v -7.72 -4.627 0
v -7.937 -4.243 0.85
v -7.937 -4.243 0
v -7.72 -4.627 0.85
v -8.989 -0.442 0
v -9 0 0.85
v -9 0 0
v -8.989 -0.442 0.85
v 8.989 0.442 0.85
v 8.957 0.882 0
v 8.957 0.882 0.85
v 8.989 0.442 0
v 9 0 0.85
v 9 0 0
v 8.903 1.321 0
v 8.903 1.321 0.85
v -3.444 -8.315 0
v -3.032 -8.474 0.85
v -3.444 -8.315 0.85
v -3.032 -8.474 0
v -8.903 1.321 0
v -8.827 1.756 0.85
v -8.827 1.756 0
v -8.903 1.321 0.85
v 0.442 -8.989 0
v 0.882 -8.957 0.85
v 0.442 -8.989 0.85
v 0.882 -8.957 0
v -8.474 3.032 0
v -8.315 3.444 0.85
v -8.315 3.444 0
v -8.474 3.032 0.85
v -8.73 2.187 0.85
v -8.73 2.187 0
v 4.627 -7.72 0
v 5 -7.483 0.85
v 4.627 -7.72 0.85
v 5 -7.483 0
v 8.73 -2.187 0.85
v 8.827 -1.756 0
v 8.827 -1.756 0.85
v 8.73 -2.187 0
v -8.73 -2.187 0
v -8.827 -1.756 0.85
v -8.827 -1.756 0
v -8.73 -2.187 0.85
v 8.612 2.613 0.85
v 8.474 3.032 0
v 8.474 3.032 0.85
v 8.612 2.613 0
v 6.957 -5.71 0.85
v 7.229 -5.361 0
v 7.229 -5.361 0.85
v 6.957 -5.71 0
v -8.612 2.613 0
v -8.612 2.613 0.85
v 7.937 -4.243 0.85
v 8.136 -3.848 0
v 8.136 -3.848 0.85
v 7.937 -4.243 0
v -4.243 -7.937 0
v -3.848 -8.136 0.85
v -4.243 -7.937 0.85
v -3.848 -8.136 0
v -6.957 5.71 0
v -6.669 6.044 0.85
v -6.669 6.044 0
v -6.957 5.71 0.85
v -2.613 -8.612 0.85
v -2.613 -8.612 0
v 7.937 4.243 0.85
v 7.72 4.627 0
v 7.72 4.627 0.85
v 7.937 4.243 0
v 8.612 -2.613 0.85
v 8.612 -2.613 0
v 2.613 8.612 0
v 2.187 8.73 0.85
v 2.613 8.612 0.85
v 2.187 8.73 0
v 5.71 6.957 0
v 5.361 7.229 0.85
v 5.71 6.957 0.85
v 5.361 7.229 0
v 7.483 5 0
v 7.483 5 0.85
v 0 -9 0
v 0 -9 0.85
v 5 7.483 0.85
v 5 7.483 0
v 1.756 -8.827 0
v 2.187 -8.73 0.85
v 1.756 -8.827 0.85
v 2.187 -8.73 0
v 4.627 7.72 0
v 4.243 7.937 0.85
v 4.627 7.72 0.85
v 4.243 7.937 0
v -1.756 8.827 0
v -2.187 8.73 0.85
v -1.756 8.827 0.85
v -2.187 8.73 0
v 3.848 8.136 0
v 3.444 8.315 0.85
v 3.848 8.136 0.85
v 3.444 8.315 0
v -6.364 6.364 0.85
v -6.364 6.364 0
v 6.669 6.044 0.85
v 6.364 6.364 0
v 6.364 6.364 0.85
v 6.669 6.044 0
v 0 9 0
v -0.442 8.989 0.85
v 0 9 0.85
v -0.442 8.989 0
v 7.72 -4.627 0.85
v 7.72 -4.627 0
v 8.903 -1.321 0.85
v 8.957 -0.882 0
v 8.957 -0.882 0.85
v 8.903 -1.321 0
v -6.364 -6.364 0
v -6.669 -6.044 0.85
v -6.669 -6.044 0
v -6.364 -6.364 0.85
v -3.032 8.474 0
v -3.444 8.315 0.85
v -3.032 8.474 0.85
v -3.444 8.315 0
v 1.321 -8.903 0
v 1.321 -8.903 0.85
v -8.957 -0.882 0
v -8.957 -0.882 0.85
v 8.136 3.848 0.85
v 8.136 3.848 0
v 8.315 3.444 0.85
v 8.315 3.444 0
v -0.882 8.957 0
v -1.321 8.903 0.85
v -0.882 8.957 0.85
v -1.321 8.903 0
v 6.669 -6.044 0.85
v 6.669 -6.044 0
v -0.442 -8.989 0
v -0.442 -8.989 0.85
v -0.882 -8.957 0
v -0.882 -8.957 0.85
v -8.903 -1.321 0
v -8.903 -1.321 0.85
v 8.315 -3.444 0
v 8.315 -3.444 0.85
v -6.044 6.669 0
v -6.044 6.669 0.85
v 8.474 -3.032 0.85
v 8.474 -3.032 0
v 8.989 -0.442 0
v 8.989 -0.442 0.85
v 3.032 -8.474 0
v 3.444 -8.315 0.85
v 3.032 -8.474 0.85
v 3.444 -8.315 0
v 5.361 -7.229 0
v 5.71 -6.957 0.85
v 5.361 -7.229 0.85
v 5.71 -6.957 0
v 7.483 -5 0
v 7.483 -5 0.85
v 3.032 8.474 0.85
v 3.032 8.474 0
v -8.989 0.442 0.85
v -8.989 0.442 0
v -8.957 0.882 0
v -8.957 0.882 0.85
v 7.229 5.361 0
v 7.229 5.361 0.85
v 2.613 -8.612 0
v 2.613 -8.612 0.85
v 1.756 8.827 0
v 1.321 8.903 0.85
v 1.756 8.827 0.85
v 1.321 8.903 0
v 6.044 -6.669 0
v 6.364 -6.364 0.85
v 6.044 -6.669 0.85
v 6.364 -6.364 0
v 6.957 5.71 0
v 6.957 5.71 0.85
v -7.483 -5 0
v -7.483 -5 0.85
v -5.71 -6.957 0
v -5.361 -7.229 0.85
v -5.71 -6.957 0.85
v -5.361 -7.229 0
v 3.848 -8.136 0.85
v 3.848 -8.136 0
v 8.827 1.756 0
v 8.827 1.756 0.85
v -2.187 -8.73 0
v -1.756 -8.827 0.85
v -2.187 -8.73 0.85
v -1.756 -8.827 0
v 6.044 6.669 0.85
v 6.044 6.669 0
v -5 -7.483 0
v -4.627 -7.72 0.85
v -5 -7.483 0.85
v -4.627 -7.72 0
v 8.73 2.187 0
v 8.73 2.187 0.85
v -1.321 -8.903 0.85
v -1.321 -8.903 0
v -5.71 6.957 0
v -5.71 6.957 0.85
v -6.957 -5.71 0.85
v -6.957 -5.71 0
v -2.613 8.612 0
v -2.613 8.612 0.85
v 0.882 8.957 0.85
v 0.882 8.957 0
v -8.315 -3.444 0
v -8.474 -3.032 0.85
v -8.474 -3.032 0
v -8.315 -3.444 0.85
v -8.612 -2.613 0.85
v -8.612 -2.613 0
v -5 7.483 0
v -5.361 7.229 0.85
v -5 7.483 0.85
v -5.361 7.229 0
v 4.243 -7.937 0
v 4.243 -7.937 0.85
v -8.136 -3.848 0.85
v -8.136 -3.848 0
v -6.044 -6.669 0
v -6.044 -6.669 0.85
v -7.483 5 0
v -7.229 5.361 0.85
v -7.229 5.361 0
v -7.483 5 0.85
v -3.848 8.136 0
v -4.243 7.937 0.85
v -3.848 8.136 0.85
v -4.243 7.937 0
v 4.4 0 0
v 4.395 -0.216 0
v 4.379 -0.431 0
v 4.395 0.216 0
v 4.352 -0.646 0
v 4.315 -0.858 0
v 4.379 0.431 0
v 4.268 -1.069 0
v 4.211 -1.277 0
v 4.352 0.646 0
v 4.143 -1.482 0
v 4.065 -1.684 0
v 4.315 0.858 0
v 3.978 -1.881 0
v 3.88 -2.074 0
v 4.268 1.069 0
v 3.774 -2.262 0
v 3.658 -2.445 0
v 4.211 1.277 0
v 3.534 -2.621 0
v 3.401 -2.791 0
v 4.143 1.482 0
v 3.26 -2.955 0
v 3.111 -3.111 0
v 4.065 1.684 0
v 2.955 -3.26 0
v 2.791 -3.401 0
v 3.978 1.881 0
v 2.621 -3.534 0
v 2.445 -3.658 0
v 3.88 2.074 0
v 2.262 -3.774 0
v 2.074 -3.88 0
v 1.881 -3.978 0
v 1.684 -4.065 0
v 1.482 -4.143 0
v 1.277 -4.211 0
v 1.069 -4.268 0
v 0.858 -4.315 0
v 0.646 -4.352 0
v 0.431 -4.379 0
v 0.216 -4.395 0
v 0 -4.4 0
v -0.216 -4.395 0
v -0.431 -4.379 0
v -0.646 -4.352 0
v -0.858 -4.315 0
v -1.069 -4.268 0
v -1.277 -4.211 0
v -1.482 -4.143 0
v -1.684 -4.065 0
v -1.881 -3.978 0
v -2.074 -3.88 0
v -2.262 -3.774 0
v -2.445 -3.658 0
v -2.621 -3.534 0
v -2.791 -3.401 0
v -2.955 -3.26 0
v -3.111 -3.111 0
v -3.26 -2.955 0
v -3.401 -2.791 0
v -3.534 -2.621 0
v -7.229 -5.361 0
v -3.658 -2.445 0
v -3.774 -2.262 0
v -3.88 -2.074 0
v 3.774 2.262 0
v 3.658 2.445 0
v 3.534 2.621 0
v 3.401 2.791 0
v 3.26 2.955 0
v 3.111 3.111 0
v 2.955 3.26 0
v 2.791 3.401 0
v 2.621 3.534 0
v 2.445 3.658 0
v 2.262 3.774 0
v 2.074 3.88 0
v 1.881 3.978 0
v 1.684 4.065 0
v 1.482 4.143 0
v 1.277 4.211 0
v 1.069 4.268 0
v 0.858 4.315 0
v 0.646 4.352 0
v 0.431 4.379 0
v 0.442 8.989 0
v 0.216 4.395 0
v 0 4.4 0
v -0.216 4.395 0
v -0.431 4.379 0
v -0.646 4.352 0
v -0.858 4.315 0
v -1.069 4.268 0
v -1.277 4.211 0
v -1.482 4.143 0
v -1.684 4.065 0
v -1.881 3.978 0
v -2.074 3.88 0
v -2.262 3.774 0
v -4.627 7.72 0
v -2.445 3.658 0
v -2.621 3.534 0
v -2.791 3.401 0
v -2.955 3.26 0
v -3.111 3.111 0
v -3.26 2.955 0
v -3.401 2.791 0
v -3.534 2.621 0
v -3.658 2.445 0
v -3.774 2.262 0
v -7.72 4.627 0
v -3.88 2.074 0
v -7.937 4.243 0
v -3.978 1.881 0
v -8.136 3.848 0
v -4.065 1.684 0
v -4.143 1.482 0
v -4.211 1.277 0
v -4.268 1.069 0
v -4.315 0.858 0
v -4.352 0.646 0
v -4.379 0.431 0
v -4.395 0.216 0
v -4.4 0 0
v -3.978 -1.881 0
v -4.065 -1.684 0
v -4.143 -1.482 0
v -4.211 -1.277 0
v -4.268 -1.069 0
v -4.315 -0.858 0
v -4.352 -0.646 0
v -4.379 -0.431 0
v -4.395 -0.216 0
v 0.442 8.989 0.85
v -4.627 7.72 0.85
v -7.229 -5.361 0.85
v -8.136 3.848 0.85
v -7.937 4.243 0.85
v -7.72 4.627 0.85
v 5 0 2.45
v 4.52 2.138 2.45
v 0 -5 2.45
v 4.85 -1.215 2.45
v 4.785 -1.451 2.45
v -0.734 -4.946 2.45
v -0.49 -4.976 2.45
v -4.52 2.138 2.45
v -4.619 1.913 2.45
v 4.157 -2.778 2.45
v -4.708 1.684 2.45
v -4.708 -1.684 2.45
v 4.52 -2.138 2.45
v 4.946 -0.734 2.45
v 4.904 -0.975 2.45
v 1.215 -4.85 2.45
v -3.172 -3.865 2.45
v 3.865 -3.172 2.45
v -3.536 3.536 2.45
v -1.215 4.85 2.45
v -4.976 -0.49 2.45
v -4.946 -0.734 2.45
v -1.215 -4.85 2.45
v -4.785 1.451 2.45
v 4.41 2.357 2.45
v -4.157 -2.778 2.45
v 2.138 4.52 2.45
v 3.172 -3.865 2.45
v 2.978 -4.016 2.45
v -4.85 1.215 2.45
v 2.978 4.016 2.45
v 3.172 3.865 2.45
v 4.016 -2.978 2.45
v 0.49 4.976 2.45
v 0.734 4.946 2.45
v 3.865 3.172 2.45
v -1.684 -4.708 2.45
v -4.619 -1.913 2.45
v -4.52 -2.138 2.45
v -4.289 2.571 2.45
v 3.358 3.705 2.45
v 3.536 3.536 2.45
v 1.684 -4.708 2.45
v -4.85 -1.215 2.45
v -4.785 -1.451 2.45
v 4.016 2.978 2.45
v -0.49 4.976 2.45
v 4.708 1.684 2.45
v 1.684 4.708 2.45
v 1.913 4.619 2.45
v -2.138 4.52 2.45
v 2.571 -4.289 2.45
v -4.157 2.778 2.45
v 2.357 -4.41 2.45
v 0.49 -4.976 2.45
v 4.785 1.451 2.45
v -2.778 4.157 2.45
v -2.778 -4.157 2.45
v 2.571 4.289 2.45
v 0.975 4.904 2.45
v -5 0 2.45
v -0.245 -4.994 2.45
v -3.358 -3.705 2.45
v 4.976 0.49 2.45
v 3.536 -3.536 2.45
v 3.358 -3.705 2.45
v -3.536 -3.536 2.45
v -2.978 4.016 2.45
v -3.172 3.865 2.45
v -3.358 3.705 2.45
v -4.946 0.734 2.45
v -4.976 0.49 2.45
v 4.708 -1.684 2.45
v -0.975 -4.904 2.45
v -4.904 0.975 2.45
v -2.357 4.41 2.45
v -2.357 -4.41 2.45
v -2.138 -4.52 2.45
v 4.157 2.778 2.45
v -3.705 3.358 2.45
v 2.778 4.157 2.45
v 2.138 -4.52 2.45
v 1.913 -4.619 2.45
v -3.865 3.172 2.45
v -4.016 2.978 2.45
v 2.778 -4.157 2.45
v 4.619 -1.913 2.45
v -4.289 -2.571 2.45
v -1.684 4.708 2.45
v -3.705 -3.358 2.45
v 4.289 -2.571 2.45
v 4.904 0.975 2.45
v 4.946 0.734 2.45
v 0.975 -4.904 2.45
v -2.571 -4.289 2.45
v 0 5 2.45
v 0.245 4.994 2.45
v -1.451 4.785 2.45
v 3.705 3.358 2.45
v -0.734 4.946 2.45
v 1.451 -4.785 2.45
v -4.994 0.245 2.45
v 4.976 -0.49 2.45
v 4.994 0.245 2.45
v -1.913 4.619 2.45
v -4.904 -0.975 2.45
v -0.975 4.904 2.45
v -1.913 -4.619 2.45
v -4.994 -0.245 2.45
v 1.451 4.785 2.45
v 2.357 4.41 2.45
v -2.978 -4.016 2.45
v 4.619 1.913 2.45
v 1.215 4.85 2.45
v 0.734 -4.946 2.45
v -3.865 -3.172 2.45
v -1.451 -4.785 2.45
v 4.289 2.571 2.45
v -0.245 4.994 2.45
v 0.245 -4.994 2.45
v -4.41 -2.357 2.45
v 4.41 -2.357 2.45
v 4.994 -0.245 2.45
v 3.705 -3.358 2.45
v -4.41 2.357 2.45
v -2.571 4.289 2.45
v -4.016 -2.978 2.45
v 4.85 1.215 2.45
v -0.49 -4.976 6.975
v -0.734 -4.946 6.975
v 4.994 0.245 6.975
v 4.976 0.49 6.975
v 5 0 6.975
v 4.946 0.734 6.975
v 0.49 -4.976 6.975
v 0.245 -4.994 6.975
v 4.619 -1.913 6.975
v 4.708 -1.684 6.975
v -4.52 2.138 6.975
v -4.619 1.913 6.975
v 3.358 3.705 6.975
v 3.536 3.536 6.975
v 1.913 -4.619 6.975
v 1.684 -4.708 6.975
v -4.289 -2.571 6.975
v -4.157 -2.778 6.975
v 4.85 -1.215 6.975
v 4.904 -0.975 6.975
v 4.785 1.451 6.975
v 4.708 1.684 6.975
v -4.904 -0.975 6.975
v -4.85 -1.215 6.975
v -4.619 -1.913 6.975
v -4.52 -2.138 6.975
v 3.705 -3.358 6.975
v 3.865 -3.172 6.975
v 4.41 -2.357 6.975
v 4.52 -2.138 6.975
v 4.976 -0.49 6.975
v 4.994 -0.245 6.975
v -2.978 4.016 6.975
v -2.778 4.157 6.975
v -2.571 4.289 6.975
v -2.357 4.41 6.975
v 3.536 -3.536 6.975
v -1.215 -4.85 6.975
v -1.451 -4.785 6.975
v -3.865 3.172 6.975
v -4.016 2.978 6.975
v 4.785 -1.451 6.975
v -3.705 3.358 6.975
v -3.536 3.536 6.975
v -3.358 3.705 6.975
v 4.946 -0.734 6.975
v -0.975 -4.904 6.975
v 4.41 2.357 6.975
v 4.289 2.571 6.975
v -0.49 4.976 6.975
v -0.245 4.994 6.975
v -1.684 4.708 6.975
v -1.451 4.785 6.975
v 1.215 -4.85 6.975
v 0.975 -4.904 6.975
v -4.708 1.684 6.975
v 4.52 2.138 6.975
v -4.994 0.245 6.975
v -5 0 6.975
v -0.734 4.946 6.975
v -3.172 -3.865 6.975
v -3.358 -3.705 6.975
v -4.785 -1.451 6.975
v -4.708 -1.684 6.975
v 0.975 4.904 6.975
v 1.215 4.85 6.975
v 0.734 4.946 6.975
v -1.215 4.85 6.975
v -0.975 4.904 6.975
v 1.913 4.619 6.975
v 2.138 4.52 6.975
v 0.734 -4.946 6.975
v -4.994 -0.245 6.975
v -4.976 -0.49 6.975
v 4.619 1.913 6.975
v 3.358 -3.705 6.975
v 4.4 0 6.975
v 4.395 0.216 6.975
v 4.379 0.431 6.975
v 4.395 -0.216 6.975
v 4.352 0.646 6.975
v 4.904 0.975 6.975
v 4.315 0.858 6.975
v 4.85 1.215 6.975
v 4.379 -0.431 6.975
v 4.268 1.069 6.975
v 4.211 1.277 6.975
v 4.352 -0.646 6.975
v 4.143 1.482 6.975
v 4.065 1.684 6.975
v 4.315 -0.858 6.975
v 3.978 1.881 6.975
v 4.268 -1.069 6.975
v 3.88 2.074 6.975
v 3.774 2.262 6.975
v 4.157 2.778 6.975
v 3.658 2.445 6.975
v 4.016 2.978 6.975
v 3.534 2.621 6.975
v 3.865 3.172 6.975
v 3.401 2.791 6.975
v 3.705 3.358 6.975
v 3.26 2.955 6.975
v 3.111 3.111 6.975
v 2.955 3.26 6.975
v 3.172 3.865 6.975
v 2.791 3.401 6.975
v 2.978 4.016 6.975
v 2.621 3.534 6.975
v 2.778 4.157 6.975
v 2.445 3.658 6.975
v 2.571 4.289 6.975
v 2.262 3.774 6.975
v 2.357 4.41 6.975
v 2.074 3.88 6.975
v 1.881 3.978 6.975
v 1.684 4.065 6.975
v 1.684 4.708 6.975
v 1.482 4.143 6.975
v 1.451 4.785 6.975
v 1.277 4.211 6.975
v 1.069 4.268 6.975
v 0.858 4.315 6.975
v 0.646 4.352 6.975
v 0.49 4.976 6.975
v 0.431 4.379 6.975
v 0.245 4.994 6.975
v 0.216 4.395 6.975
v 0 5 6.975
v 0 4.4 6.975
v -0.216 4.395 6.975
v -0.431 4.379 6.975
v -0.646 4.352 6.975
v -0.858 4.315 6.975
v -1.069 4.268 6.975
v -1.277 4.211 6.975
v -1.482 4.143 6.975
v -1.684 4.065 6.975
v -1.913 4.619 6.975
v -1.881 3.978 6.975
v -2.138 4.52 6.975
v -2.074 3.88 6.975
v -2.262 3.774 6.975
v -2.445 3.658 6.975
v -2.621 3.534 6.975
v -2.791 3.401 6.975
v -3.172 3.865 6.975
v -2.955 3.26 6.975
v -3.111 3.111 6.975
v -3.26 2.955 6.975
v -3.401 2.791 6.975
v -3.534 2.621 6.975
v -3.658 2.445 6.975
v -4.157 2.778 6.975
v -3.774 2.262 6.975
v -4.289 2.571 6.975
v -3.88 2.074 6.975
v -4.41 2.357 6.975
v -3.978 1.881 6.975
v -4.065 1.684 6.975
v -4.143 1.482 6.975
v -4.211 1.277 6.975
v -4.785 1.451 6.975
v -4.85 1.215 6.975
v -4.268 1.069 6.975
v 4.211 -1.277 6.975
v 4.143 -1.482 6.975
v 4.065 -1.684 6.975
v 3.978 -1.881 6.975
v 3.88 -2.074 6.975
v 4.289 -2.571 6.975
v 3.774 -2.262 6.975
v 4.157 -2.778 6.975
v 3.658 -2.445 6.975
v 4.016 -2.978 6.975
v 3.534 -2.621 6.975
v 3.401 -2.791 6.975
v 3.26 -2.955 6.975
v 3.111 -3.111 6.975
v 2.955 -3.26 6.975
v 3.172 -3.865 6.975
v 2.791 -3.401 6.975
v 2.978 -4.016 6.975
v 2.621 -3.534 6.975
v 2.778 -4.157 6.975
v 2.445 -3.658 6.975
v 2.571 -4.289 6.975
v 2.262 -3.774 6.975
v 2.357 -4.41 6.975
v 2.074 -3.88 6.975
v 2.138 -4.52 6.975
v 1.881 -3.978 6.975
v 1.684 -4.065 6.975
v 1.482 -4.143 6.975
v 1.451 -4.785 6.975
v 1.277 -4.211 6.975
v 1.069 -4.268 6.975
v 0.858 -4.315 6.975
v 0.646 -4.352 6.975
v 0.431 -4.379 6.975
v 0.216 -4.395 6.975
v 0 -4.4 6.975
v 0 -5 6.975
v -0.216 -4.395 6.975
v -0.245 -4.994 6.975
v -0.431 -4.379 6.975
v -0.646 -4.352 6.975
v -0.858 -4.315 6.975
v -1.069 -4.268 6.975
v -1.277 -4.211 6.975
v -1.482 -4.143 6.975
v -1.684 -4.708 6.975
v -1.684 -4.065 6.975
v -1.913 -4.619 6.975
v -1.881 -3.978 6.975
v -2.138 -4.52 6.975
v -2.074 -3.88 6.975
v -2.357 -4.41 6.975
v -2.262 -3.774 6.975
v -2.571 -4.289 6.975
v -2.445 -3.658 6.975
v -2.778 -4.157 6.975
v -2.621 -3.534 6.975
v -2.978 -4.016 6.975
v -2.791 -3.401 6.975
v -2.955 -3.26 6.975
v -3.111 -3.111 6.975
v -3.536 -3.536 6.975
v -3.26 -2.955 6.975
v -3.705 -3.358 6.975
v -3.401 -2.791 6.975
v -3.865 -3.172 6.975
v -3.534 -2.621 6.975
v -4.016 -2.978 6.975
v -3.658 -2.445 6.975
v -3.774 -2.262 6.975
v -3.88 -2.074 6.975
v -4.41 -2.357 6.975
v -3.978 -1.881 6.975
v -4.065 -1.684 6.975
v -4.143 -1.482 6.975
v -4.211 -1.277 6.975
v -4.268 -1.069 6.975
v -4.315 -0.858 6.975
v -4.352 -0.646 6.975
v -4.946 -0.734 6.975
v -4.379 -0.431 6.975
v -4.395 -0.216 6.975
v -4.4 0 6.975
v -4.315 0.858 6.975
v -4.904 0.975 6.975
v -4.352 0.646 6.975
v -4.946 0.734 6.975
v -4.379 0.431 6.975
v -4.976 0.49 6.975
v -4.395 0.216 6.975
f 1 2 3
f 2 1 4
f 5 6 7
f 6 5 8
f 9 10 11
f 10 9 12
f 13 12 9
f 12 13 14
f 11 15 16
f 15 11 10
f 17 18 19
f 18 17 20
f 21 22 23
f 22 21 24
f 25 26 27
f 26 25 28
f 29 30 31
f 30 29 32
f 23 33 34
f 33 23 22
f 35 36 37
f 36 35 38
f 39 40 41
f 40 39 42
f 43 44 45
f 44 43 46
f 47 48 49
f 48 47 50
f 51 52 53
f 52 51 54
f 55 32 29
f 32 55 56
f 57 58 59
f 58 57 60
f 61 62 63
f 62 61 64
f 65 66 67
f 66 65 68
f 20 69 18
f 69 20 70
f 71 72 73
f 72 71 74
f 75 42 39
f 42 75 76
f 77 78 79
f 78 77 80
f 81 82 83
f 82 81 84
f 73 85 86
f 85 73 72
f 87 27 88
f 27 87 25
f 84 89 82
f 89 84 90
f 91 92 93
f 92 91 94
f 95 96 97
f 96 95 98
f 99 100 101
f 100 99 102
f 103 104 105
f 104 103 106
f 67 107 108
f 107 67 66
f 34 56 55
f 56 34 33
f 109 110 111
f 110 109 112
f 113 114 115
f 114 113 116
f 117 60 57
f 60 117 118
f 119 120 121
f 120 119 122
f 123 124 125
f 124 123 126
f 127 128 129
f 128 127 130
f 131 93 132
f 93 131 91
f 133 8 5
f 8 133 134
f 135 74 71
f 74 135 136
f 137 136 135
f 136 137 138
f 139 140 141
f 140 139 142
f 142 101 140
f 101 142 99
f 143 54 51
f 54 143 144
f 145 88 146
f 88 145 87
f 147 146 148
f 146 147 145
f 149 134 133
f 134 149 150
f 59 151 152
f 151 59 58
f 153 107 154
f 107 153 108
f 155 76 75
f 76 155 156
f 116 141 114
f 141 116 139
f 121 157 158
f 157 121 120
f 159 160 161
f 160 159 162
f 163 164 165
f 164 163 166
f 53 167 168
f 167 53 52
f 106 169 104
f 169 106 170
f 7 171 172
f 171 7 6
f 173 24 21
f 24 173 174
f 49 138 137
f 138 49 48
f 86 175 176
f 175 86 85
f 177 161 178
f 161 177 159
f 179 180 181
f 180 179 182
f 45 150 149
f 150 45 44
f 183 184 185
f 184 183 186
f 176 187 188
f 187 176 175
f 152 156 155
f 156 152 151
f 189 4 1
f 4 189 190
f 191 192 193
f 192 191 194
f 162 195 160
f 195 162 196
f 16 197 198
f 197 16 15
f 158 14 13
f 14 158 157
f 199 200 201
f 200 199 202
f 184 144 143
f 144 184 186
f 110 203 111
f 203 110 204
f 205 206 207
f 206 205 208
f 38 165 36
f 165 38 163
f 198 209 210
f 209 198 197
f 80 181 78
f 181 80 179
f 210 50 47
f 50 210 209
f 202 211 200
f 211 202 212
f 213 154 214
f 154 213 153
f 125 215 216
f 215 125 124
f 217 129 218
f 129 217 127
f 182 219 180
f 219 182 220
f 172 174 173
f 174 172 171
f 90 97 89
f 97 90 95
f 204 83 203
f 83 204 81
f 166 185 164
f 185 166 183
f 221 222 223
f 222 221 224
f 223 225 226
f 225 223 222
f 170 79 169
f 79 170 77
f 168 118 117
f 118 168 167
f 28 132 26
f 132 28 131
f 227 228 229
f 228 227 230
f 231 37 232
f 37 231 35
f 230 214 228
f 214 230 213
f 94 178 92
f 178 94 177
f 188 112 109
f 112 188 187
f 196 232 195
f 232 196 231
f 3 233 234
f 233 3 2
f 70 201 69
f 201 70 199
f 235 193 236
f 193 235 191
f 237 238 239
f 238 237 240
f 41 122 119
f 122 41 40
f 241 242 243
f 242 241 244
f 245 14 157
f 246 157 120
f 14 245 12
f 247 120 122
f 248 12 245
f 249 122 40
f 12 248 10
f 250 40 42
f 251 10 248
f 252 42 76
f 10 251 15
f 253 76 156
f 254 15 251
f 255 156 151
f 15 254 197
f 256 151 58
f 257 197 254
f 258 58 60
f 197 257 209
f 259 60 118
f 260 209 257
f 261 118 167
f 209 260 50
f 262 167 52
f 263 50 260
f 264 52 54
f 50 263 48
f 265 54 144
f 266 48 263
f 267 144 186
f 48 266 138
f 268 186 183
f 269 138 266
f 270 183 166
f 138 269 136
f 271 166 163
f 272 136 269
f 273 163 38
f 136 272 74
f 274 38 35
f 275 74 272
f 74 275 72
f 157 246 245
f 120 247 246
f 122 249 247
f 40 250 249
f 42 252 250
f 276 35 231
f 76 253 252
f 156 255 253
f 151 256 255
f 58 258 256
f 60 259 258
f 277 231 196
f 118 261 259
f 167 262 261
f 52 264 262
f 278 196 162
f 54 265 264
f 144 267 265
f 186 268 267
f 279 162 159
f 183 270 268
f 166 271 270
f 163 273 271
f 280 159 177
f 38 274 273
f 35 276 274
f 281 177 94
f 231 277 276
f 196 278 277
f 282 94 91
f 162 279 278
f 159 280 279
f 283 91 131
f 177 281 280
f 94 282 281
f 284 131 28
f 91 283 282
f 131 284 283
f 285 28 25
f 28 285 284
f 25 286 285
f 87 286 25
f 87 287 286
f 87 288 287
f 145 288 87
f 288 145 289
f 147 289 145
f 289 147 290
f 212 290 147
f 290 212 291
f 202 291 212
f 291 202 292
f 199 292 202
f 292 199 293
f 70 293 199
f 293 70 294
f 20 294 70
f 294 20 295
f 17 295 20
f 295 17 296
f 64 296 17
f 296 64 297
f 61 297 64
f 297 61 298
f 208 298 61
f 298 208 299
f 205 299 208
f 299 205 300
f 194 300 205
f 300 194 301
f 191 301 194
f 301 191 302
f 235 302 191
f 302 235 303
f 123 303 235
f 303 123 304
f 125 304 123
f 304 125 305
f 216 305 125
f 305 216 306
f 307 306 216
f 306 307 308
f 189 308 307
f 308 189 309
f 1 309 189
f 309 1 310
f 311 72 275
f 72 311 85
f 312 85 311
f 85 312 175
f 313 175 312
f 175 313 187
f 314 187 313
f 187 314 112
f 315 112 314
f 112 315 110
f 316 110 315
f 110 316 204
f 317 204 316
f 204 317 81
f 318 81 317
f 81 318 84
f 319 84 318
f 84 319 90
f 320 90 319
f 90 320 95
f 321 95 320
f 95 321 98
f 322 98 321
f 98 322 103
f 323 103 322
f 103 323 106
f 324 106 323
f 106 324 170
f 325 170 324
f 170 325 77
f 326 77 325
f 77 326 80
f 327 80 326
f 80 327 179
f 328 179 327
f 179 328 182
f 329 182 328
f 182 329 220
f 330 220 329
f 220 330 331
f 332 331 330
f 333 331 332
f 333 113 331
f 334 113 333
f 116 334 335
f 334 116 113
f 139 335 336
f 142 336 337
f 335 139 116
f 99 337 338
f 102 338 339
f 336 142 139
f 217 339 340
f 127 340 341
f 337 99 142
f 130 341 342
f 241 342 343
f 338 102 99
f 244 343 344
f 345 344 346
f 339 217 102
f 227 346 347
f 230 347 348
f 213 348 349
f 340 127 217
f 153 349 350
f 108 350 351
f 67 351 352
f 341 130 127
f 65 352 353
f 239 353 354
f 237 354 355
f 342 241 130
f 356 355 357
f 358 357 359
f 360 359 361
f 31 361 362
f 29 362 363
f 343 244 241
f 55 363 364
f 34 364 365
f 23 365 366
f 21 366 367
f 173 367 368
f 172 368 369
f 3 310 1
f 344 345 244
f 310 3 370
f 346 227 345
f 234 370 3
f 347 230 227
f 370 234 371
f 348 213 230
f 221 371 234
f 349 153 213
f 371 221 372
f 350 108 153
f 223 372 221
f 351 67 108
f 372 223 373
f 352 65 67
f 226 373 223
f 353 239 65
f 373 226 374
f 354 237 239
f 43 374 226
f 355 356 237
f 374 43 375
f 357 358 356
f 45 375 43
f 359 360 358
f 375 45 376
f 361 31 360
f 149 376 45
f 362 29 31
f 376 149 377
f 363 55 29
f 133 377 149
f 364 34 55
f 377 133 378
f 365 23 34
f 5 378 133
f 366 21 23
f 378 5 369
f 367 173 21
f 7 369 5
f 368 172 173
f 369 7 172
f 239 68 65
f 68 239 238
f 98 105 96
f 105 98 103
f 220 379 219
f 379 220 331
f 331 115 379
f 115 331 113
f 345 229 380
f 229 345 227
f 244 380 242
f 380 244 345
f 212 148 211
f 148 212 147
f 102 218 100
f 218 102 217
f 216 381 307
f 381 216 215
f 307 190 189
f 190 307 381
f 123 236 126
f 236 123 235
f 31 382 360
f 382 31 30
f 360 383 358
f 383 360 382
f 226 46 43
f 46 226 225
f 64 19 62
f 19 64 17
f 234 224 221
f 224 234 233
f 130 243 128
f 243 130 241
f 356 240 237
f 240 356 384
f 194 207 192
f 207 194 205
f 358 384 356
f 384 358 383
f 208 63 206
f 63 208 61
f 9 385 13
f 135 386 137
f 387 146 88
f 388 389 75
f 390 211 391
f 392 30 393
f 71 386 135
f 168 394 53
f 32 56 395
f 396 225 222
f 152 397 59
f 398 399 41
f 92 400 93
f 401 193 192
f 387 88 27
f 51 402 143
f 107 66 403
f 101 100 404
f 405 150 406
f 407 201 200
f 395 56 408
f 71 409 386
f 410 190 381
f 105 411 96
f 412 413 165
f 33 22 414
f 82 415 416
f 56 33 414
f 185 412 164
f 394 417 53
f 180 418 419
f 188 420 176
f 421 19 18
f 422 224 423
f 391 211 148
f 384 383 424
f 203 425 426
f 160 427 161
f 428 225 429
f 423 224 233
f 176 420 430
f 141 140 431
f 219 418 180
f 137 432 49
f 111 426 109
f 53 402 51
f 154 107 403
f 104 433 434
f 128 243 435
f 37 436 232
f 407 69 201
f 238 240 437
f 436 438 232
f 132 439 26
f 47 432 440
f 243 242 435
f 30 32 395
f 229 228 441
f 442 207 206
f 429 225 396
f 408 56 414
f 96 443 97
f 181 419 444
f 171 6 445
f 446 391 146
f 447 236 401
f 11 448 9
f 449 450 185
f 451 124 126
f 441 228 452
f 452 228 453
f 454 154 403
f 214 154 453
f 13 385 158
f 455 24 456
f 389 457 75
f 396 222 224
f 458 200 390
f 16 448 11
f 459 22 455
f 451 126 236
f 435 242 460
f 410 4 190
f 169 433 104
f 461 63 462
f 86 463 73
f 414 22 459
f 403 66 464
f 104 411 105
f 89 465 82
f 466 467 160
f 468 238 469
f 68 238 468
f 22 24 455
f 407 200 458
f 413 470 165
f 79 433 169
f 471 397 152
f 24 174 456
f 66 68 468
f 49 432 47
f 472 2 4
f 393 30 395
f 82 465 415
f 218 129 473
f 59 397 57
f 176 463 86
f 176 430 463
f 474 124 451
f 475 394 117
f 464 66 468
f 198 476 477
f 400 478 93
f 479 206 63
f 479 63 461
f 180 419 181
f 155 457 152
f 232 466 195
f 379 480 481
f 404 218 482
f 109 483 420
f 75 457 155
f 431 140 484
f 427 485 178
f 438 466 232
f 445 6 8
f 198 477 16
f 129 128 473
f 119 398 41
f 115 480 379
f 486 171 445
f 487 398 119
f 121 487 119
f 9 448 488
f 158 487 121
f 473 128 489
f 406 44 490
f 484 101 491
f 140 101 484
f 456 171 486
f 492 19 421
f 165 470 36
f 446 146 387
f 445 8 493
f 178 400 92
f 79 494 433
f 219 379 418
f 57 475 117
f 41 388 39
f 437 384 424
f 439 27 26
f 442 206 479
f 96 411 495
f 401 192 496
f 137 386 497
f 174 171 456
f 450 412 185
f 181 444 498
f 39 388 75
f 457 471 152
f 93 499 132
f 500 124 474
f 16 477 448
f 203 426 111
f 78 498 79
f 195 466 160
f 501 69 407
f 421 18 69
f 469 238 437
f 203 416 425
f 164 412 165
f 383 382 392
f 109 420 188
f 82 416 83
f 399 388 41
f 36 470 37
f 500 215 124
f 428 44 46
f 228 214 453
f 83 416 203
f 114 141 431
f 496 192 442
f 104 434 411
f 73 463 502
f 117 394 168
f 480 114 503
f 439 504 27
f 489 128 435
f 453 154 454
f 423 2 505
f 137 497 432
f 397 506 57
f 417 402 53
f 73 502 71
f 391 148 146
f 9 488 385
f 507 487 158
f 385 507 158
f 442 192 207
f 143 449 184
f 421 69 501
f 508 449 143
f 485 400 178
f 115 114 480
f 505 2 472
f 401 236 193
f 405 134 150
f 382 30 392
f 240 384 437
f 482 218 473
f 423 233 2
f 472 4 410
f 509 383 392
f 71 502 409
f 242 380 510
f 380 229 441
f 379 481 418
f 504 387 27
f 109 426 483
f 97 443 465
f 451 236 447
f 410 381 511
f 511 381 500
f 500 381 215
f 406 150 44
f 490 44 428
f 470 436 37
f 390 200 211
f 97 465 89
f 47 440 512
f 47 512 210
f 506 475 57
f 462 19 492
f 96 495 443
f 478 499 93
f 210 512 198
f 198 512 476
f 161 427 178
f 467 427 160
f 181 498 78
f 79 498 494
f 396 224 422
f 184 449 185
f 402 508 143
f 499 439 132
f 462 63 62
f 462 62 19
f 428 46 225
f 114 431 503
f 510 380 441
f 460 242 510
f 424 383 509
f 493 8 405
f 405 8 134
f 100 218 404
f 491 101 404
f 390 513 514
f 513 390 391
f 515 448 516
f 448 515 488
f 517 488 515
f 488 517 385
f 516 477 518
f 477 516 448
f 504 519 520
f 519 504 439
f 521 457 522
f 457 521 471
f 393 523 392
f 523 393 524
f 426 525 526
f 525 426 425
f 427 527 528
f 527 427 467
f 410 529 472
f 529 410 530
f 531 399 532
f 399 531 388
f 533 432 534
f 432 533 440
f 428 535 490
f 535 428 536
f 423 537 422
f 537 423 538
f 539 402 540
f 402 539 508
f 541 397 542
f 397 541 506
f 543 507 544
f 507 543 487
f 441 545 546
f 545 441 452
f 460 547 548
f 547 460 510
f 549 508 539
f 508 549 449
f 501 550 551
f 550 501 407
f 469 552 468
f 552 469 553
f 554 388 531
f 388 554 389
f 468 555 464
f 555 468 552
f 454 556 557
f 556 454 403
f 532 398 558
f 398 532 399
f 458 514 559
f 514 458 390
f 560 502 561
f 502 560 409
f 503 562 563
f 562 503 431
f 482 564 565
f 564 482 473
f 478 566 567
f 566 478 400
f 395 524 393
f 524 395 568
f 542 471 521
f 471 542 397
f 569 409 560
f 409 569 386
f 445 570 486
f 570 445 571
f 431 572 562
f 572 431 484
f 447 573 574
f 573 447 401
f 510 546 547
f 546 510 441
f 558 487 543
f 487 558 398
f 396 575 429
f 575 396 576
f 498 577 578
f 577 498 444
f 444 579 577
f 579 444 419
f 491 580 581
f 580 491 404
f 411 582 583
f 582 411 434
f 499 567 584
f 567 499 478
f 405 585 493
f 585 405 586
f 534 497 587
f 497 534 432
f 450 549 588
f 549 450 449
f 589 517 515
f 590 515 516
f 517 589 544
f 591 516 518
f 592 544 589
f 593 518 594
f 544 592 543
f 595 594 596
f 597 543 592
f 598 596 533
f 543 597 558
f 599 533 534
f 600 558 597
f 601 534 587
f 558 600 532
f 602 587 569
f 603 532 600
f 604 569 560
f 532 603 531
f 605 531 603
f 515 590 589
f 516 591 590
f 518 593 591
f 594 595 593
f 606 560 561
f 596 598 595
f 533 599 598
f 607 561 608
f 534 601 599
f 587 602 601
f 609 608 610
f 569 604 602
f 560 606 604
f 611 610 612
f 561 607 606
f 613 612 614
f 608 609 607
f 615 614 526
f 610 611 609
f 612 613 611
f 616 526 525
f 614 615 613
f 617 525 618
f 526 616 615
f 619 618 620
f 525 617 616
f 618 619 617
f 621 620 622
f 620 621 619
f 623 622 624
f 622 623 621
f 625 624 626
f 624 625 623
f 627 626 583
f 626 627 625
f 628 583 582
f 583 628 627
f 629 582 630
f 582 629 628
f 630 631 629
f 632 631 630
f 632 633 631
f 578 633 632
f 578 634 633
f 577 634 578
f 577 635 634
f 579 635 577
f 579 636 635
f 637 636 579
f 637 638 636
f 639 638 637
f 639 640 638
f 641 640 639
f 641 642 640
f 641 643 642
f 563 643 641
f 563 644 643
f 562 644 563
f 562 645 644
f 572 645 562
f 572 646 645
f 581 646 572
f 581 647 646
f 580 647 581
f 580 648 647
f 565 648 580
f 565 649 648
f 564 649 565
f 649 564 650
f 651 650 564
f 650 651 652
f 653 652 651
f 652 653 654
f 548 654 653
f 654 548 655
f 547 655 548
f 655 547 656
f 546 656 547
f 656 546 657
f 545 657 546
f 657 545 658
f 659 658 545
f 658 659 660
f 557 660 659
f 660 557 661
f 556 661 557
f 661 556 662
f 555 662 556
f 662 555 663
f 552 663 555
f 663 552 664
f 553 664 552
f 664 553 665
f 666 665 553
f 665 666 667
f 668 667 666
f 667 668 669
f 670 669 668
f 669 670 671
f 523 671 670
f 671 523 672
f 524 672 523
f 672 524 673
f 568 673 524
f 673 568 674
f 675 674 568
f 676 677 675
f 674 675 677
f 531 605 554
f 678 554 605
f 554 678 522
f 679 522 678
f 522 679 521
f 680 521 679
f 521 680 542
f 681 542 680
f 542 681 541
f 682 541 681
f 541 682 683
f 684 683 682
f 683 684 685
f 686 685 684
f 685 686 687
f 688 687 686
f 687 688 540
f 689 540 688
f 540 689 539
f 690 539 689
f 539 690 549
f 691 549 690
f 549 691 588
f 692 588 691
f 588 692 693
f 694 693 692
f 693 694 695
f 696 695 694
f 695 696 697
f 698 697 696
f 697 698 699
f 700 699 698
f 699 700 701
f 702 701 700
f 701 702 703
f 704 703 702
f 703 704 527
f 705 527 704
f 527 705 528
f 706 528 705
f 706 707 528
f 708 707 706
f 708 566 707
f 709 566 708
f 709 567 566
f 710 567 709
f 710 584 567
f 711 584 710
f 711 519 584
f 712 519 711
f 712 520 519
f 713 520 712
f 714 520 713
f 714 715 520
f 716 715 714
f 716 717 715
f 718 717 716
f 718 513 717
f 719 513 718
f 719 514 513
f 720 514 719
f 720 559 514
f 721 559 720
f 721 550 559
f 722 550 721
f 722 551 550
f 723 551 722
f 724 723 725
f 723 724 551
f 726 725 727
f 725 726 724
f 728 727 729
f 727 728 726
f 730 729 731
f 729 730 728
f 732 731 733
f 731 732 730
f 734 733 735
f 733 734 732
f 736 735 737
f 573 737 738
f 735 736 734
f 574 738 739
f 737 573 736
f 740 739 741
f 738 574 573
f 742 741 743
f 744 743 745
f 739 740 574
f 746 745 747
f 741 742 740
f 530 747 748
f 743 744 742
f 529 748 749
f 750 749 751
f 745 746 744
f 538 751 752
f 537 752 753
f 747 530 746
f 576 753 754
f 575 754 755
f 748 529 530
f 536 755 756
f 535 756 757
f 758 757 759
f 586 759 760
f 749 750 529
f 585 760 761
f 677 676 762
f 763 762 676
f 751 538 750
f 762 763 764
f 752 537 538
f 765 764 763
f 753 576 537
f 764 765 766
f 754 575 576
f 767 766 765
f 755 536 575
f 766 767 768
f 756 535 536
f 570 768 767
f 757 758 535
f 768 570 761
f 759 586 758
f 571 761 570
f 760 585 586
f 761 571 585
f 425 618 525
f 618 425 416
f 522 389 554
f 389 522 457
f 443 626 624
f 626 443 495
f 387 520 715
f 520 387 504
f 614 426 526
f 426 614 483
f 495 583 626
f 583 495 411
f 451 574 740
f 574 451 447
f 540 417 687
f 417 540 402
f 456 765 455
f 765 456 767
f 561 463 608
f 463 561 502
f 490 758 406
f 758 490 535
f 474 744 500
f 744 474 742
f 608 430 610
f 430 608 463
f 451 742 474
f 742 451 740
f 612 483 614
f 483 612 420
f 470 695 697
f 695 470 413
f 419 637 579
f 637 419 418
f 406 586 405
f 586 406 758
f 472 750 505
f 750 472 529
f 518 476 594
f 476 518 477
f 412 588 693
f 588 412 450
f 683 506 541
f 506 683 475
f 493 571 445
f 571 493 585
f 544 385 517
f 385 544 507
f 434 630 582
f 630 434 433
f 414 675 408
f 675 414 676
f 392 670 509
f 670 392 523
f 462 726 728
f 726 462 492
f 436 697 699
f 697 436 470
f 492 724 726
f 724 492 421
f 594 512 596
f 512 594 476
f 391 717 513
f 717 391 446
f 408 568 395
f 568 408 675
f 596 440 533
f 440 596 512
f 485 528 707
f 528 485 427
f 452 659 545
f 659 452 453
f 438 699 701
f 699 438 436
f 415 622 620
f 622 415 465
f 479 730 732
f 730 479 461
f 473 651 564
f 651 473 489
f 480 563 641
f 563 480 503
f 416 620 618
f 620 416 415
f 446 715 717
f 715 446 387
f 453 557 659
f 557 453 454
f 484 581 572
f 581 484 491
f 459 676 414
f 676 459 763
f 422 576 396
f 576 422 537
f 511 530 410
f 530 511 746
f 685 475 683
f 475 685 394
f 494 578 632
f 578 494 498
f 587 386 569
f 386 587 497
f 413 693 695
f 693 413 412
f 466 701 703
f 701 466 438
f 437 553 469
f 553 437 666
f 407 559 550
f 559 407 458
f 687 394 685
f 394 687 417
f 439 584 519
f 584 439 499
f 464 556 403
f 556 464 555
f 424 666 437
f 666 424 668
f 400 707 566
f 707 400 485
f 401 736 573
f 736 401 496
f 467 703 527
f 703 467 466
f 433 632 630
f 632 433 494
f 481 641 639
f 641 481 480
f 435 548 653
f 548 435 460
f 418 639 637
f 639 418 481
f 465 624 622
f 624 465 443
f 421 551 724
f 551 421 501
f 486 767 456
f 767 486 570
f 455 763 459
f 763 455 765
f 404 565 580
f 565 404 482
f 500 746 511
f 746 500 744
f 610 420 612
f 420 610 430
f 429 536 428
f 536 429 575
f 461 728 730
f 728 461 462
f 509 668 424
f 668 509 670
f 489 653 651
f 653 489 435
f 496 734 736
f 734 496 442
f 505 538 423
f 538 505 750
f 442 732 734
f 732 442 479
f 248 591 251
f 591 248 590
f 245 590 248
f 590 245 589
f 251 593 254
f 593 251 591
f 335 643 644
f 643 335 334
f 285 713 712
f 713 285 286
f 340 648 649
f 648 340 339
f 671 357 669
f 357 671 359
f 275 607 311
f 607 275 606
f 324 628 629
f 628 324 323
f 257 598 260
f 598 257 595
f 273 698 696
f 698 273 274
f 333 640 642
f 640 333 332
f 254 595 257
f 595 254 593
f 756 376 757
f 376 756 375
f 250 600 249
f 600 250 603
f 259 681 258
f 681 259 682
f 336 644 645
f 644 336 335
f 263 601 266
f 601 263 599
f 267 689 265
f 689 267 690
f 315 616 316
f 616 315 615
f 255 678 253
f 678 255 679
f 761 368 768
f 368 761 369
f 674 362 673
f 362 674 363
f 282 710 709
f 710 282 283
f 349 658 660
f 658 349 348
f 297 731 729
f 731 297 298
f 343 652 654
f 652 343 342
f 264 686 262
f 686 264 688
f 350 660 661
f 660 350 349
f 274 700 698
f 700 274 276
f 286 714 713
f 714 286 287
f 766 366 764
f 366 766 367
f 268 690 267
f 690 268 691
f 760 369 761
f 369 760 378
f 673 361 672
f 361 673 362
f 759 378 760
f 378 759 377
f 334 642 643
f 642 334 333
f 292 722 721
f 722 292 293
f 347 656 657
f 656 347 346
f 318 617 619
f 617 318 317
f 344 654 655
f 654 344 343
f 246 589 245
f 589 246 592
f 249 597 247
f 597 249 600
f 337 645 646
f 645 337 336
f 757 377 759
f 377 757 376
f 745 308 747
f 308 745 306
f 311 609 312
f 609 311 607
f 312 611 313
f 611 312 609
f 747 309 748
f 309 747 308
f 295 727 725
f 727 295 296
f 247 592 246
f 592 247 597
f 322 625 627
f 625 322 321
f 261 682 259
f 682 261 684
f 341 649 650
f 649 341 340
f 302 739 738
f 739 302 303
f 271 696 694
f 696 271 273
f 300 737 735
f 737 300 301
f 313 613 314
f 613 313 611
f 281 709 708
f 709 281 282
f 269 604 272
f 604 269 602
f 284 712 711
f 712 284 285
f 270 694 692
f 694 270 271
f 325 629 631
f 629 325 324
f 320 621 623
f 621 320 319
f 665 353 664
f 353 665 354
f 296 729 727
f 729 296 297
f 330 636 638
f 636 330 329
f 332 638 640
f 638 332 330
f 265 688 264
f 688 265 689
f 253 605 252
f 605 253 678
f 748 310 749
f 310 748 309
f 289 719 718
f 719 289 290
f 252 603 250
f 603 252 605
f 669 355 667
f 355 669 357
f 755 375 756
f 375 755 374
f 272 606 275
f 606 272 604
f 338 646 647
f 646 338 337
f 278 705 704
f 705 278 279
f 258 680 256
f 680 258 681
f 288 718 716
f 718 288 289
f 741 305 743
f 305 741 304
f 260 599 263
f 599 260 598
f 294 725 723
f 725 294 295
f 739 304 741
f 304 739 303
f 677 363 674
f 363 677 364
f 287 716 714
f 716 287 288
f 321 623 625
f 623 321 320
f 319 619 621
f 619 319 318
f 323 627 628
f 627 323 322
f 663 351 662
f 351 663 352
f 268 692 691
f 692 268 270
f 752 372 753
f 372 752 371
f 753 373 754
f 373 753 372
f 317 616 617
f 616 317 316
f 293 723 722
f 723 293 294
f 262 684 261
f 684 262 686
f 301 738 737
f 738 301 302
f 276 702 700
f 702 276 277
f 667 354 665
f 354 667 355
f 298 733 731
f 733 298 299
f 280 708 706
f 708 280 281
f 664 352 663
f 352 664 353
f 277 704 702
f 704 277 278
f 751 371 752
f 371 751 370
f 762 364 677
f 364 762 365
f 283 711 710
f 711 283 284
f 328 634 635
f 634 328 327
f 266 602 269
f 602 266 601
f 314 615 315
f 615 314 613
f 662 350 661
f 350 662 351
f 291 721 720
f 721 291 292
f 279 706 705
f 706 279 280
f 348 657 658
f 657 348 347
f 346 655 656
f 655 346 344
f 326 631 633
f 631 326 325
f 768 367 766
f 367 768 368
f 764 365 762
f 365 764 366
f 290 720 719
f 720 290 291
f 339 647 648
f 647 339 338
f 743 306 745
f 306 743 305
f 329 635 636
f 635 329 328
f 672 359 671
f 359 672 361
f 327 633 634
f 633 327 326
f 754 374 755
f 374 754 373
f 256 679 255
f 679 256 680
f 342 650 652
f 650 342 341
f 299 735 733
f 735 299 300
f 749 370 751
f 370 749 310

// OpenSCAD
$fn=128;

// V110 rotating bushing half for an M8 full-thread steel spindle.
// Two halves per spindle, four per clamp.
// Keeps the proven V70/V5 clamp-seat geometry, but replaces the old
// centering recess with a flat thrust face and increases the running bore.

body_od = 10.00;
body_id = 8.80;
body_len = 4.525;
collar_od = 18.00;
collar_h = 0.85;
seat_h = 1.60;

difference() {
    union() {
        cylinder(d=collar_od,h=collar_h);
        translate([0,0,collar_h])
            cylinder(d1=collar_od,d2=body_od,h=seat_h);
        translate([0,0,collar_h+seat_h])
            cylinder(d=body_od,h=body_len);
    }
    translate([0,0,-0.5])
        cylinder(d=body_id,h=collar_h+seat_h+body_len+1.0);
}
